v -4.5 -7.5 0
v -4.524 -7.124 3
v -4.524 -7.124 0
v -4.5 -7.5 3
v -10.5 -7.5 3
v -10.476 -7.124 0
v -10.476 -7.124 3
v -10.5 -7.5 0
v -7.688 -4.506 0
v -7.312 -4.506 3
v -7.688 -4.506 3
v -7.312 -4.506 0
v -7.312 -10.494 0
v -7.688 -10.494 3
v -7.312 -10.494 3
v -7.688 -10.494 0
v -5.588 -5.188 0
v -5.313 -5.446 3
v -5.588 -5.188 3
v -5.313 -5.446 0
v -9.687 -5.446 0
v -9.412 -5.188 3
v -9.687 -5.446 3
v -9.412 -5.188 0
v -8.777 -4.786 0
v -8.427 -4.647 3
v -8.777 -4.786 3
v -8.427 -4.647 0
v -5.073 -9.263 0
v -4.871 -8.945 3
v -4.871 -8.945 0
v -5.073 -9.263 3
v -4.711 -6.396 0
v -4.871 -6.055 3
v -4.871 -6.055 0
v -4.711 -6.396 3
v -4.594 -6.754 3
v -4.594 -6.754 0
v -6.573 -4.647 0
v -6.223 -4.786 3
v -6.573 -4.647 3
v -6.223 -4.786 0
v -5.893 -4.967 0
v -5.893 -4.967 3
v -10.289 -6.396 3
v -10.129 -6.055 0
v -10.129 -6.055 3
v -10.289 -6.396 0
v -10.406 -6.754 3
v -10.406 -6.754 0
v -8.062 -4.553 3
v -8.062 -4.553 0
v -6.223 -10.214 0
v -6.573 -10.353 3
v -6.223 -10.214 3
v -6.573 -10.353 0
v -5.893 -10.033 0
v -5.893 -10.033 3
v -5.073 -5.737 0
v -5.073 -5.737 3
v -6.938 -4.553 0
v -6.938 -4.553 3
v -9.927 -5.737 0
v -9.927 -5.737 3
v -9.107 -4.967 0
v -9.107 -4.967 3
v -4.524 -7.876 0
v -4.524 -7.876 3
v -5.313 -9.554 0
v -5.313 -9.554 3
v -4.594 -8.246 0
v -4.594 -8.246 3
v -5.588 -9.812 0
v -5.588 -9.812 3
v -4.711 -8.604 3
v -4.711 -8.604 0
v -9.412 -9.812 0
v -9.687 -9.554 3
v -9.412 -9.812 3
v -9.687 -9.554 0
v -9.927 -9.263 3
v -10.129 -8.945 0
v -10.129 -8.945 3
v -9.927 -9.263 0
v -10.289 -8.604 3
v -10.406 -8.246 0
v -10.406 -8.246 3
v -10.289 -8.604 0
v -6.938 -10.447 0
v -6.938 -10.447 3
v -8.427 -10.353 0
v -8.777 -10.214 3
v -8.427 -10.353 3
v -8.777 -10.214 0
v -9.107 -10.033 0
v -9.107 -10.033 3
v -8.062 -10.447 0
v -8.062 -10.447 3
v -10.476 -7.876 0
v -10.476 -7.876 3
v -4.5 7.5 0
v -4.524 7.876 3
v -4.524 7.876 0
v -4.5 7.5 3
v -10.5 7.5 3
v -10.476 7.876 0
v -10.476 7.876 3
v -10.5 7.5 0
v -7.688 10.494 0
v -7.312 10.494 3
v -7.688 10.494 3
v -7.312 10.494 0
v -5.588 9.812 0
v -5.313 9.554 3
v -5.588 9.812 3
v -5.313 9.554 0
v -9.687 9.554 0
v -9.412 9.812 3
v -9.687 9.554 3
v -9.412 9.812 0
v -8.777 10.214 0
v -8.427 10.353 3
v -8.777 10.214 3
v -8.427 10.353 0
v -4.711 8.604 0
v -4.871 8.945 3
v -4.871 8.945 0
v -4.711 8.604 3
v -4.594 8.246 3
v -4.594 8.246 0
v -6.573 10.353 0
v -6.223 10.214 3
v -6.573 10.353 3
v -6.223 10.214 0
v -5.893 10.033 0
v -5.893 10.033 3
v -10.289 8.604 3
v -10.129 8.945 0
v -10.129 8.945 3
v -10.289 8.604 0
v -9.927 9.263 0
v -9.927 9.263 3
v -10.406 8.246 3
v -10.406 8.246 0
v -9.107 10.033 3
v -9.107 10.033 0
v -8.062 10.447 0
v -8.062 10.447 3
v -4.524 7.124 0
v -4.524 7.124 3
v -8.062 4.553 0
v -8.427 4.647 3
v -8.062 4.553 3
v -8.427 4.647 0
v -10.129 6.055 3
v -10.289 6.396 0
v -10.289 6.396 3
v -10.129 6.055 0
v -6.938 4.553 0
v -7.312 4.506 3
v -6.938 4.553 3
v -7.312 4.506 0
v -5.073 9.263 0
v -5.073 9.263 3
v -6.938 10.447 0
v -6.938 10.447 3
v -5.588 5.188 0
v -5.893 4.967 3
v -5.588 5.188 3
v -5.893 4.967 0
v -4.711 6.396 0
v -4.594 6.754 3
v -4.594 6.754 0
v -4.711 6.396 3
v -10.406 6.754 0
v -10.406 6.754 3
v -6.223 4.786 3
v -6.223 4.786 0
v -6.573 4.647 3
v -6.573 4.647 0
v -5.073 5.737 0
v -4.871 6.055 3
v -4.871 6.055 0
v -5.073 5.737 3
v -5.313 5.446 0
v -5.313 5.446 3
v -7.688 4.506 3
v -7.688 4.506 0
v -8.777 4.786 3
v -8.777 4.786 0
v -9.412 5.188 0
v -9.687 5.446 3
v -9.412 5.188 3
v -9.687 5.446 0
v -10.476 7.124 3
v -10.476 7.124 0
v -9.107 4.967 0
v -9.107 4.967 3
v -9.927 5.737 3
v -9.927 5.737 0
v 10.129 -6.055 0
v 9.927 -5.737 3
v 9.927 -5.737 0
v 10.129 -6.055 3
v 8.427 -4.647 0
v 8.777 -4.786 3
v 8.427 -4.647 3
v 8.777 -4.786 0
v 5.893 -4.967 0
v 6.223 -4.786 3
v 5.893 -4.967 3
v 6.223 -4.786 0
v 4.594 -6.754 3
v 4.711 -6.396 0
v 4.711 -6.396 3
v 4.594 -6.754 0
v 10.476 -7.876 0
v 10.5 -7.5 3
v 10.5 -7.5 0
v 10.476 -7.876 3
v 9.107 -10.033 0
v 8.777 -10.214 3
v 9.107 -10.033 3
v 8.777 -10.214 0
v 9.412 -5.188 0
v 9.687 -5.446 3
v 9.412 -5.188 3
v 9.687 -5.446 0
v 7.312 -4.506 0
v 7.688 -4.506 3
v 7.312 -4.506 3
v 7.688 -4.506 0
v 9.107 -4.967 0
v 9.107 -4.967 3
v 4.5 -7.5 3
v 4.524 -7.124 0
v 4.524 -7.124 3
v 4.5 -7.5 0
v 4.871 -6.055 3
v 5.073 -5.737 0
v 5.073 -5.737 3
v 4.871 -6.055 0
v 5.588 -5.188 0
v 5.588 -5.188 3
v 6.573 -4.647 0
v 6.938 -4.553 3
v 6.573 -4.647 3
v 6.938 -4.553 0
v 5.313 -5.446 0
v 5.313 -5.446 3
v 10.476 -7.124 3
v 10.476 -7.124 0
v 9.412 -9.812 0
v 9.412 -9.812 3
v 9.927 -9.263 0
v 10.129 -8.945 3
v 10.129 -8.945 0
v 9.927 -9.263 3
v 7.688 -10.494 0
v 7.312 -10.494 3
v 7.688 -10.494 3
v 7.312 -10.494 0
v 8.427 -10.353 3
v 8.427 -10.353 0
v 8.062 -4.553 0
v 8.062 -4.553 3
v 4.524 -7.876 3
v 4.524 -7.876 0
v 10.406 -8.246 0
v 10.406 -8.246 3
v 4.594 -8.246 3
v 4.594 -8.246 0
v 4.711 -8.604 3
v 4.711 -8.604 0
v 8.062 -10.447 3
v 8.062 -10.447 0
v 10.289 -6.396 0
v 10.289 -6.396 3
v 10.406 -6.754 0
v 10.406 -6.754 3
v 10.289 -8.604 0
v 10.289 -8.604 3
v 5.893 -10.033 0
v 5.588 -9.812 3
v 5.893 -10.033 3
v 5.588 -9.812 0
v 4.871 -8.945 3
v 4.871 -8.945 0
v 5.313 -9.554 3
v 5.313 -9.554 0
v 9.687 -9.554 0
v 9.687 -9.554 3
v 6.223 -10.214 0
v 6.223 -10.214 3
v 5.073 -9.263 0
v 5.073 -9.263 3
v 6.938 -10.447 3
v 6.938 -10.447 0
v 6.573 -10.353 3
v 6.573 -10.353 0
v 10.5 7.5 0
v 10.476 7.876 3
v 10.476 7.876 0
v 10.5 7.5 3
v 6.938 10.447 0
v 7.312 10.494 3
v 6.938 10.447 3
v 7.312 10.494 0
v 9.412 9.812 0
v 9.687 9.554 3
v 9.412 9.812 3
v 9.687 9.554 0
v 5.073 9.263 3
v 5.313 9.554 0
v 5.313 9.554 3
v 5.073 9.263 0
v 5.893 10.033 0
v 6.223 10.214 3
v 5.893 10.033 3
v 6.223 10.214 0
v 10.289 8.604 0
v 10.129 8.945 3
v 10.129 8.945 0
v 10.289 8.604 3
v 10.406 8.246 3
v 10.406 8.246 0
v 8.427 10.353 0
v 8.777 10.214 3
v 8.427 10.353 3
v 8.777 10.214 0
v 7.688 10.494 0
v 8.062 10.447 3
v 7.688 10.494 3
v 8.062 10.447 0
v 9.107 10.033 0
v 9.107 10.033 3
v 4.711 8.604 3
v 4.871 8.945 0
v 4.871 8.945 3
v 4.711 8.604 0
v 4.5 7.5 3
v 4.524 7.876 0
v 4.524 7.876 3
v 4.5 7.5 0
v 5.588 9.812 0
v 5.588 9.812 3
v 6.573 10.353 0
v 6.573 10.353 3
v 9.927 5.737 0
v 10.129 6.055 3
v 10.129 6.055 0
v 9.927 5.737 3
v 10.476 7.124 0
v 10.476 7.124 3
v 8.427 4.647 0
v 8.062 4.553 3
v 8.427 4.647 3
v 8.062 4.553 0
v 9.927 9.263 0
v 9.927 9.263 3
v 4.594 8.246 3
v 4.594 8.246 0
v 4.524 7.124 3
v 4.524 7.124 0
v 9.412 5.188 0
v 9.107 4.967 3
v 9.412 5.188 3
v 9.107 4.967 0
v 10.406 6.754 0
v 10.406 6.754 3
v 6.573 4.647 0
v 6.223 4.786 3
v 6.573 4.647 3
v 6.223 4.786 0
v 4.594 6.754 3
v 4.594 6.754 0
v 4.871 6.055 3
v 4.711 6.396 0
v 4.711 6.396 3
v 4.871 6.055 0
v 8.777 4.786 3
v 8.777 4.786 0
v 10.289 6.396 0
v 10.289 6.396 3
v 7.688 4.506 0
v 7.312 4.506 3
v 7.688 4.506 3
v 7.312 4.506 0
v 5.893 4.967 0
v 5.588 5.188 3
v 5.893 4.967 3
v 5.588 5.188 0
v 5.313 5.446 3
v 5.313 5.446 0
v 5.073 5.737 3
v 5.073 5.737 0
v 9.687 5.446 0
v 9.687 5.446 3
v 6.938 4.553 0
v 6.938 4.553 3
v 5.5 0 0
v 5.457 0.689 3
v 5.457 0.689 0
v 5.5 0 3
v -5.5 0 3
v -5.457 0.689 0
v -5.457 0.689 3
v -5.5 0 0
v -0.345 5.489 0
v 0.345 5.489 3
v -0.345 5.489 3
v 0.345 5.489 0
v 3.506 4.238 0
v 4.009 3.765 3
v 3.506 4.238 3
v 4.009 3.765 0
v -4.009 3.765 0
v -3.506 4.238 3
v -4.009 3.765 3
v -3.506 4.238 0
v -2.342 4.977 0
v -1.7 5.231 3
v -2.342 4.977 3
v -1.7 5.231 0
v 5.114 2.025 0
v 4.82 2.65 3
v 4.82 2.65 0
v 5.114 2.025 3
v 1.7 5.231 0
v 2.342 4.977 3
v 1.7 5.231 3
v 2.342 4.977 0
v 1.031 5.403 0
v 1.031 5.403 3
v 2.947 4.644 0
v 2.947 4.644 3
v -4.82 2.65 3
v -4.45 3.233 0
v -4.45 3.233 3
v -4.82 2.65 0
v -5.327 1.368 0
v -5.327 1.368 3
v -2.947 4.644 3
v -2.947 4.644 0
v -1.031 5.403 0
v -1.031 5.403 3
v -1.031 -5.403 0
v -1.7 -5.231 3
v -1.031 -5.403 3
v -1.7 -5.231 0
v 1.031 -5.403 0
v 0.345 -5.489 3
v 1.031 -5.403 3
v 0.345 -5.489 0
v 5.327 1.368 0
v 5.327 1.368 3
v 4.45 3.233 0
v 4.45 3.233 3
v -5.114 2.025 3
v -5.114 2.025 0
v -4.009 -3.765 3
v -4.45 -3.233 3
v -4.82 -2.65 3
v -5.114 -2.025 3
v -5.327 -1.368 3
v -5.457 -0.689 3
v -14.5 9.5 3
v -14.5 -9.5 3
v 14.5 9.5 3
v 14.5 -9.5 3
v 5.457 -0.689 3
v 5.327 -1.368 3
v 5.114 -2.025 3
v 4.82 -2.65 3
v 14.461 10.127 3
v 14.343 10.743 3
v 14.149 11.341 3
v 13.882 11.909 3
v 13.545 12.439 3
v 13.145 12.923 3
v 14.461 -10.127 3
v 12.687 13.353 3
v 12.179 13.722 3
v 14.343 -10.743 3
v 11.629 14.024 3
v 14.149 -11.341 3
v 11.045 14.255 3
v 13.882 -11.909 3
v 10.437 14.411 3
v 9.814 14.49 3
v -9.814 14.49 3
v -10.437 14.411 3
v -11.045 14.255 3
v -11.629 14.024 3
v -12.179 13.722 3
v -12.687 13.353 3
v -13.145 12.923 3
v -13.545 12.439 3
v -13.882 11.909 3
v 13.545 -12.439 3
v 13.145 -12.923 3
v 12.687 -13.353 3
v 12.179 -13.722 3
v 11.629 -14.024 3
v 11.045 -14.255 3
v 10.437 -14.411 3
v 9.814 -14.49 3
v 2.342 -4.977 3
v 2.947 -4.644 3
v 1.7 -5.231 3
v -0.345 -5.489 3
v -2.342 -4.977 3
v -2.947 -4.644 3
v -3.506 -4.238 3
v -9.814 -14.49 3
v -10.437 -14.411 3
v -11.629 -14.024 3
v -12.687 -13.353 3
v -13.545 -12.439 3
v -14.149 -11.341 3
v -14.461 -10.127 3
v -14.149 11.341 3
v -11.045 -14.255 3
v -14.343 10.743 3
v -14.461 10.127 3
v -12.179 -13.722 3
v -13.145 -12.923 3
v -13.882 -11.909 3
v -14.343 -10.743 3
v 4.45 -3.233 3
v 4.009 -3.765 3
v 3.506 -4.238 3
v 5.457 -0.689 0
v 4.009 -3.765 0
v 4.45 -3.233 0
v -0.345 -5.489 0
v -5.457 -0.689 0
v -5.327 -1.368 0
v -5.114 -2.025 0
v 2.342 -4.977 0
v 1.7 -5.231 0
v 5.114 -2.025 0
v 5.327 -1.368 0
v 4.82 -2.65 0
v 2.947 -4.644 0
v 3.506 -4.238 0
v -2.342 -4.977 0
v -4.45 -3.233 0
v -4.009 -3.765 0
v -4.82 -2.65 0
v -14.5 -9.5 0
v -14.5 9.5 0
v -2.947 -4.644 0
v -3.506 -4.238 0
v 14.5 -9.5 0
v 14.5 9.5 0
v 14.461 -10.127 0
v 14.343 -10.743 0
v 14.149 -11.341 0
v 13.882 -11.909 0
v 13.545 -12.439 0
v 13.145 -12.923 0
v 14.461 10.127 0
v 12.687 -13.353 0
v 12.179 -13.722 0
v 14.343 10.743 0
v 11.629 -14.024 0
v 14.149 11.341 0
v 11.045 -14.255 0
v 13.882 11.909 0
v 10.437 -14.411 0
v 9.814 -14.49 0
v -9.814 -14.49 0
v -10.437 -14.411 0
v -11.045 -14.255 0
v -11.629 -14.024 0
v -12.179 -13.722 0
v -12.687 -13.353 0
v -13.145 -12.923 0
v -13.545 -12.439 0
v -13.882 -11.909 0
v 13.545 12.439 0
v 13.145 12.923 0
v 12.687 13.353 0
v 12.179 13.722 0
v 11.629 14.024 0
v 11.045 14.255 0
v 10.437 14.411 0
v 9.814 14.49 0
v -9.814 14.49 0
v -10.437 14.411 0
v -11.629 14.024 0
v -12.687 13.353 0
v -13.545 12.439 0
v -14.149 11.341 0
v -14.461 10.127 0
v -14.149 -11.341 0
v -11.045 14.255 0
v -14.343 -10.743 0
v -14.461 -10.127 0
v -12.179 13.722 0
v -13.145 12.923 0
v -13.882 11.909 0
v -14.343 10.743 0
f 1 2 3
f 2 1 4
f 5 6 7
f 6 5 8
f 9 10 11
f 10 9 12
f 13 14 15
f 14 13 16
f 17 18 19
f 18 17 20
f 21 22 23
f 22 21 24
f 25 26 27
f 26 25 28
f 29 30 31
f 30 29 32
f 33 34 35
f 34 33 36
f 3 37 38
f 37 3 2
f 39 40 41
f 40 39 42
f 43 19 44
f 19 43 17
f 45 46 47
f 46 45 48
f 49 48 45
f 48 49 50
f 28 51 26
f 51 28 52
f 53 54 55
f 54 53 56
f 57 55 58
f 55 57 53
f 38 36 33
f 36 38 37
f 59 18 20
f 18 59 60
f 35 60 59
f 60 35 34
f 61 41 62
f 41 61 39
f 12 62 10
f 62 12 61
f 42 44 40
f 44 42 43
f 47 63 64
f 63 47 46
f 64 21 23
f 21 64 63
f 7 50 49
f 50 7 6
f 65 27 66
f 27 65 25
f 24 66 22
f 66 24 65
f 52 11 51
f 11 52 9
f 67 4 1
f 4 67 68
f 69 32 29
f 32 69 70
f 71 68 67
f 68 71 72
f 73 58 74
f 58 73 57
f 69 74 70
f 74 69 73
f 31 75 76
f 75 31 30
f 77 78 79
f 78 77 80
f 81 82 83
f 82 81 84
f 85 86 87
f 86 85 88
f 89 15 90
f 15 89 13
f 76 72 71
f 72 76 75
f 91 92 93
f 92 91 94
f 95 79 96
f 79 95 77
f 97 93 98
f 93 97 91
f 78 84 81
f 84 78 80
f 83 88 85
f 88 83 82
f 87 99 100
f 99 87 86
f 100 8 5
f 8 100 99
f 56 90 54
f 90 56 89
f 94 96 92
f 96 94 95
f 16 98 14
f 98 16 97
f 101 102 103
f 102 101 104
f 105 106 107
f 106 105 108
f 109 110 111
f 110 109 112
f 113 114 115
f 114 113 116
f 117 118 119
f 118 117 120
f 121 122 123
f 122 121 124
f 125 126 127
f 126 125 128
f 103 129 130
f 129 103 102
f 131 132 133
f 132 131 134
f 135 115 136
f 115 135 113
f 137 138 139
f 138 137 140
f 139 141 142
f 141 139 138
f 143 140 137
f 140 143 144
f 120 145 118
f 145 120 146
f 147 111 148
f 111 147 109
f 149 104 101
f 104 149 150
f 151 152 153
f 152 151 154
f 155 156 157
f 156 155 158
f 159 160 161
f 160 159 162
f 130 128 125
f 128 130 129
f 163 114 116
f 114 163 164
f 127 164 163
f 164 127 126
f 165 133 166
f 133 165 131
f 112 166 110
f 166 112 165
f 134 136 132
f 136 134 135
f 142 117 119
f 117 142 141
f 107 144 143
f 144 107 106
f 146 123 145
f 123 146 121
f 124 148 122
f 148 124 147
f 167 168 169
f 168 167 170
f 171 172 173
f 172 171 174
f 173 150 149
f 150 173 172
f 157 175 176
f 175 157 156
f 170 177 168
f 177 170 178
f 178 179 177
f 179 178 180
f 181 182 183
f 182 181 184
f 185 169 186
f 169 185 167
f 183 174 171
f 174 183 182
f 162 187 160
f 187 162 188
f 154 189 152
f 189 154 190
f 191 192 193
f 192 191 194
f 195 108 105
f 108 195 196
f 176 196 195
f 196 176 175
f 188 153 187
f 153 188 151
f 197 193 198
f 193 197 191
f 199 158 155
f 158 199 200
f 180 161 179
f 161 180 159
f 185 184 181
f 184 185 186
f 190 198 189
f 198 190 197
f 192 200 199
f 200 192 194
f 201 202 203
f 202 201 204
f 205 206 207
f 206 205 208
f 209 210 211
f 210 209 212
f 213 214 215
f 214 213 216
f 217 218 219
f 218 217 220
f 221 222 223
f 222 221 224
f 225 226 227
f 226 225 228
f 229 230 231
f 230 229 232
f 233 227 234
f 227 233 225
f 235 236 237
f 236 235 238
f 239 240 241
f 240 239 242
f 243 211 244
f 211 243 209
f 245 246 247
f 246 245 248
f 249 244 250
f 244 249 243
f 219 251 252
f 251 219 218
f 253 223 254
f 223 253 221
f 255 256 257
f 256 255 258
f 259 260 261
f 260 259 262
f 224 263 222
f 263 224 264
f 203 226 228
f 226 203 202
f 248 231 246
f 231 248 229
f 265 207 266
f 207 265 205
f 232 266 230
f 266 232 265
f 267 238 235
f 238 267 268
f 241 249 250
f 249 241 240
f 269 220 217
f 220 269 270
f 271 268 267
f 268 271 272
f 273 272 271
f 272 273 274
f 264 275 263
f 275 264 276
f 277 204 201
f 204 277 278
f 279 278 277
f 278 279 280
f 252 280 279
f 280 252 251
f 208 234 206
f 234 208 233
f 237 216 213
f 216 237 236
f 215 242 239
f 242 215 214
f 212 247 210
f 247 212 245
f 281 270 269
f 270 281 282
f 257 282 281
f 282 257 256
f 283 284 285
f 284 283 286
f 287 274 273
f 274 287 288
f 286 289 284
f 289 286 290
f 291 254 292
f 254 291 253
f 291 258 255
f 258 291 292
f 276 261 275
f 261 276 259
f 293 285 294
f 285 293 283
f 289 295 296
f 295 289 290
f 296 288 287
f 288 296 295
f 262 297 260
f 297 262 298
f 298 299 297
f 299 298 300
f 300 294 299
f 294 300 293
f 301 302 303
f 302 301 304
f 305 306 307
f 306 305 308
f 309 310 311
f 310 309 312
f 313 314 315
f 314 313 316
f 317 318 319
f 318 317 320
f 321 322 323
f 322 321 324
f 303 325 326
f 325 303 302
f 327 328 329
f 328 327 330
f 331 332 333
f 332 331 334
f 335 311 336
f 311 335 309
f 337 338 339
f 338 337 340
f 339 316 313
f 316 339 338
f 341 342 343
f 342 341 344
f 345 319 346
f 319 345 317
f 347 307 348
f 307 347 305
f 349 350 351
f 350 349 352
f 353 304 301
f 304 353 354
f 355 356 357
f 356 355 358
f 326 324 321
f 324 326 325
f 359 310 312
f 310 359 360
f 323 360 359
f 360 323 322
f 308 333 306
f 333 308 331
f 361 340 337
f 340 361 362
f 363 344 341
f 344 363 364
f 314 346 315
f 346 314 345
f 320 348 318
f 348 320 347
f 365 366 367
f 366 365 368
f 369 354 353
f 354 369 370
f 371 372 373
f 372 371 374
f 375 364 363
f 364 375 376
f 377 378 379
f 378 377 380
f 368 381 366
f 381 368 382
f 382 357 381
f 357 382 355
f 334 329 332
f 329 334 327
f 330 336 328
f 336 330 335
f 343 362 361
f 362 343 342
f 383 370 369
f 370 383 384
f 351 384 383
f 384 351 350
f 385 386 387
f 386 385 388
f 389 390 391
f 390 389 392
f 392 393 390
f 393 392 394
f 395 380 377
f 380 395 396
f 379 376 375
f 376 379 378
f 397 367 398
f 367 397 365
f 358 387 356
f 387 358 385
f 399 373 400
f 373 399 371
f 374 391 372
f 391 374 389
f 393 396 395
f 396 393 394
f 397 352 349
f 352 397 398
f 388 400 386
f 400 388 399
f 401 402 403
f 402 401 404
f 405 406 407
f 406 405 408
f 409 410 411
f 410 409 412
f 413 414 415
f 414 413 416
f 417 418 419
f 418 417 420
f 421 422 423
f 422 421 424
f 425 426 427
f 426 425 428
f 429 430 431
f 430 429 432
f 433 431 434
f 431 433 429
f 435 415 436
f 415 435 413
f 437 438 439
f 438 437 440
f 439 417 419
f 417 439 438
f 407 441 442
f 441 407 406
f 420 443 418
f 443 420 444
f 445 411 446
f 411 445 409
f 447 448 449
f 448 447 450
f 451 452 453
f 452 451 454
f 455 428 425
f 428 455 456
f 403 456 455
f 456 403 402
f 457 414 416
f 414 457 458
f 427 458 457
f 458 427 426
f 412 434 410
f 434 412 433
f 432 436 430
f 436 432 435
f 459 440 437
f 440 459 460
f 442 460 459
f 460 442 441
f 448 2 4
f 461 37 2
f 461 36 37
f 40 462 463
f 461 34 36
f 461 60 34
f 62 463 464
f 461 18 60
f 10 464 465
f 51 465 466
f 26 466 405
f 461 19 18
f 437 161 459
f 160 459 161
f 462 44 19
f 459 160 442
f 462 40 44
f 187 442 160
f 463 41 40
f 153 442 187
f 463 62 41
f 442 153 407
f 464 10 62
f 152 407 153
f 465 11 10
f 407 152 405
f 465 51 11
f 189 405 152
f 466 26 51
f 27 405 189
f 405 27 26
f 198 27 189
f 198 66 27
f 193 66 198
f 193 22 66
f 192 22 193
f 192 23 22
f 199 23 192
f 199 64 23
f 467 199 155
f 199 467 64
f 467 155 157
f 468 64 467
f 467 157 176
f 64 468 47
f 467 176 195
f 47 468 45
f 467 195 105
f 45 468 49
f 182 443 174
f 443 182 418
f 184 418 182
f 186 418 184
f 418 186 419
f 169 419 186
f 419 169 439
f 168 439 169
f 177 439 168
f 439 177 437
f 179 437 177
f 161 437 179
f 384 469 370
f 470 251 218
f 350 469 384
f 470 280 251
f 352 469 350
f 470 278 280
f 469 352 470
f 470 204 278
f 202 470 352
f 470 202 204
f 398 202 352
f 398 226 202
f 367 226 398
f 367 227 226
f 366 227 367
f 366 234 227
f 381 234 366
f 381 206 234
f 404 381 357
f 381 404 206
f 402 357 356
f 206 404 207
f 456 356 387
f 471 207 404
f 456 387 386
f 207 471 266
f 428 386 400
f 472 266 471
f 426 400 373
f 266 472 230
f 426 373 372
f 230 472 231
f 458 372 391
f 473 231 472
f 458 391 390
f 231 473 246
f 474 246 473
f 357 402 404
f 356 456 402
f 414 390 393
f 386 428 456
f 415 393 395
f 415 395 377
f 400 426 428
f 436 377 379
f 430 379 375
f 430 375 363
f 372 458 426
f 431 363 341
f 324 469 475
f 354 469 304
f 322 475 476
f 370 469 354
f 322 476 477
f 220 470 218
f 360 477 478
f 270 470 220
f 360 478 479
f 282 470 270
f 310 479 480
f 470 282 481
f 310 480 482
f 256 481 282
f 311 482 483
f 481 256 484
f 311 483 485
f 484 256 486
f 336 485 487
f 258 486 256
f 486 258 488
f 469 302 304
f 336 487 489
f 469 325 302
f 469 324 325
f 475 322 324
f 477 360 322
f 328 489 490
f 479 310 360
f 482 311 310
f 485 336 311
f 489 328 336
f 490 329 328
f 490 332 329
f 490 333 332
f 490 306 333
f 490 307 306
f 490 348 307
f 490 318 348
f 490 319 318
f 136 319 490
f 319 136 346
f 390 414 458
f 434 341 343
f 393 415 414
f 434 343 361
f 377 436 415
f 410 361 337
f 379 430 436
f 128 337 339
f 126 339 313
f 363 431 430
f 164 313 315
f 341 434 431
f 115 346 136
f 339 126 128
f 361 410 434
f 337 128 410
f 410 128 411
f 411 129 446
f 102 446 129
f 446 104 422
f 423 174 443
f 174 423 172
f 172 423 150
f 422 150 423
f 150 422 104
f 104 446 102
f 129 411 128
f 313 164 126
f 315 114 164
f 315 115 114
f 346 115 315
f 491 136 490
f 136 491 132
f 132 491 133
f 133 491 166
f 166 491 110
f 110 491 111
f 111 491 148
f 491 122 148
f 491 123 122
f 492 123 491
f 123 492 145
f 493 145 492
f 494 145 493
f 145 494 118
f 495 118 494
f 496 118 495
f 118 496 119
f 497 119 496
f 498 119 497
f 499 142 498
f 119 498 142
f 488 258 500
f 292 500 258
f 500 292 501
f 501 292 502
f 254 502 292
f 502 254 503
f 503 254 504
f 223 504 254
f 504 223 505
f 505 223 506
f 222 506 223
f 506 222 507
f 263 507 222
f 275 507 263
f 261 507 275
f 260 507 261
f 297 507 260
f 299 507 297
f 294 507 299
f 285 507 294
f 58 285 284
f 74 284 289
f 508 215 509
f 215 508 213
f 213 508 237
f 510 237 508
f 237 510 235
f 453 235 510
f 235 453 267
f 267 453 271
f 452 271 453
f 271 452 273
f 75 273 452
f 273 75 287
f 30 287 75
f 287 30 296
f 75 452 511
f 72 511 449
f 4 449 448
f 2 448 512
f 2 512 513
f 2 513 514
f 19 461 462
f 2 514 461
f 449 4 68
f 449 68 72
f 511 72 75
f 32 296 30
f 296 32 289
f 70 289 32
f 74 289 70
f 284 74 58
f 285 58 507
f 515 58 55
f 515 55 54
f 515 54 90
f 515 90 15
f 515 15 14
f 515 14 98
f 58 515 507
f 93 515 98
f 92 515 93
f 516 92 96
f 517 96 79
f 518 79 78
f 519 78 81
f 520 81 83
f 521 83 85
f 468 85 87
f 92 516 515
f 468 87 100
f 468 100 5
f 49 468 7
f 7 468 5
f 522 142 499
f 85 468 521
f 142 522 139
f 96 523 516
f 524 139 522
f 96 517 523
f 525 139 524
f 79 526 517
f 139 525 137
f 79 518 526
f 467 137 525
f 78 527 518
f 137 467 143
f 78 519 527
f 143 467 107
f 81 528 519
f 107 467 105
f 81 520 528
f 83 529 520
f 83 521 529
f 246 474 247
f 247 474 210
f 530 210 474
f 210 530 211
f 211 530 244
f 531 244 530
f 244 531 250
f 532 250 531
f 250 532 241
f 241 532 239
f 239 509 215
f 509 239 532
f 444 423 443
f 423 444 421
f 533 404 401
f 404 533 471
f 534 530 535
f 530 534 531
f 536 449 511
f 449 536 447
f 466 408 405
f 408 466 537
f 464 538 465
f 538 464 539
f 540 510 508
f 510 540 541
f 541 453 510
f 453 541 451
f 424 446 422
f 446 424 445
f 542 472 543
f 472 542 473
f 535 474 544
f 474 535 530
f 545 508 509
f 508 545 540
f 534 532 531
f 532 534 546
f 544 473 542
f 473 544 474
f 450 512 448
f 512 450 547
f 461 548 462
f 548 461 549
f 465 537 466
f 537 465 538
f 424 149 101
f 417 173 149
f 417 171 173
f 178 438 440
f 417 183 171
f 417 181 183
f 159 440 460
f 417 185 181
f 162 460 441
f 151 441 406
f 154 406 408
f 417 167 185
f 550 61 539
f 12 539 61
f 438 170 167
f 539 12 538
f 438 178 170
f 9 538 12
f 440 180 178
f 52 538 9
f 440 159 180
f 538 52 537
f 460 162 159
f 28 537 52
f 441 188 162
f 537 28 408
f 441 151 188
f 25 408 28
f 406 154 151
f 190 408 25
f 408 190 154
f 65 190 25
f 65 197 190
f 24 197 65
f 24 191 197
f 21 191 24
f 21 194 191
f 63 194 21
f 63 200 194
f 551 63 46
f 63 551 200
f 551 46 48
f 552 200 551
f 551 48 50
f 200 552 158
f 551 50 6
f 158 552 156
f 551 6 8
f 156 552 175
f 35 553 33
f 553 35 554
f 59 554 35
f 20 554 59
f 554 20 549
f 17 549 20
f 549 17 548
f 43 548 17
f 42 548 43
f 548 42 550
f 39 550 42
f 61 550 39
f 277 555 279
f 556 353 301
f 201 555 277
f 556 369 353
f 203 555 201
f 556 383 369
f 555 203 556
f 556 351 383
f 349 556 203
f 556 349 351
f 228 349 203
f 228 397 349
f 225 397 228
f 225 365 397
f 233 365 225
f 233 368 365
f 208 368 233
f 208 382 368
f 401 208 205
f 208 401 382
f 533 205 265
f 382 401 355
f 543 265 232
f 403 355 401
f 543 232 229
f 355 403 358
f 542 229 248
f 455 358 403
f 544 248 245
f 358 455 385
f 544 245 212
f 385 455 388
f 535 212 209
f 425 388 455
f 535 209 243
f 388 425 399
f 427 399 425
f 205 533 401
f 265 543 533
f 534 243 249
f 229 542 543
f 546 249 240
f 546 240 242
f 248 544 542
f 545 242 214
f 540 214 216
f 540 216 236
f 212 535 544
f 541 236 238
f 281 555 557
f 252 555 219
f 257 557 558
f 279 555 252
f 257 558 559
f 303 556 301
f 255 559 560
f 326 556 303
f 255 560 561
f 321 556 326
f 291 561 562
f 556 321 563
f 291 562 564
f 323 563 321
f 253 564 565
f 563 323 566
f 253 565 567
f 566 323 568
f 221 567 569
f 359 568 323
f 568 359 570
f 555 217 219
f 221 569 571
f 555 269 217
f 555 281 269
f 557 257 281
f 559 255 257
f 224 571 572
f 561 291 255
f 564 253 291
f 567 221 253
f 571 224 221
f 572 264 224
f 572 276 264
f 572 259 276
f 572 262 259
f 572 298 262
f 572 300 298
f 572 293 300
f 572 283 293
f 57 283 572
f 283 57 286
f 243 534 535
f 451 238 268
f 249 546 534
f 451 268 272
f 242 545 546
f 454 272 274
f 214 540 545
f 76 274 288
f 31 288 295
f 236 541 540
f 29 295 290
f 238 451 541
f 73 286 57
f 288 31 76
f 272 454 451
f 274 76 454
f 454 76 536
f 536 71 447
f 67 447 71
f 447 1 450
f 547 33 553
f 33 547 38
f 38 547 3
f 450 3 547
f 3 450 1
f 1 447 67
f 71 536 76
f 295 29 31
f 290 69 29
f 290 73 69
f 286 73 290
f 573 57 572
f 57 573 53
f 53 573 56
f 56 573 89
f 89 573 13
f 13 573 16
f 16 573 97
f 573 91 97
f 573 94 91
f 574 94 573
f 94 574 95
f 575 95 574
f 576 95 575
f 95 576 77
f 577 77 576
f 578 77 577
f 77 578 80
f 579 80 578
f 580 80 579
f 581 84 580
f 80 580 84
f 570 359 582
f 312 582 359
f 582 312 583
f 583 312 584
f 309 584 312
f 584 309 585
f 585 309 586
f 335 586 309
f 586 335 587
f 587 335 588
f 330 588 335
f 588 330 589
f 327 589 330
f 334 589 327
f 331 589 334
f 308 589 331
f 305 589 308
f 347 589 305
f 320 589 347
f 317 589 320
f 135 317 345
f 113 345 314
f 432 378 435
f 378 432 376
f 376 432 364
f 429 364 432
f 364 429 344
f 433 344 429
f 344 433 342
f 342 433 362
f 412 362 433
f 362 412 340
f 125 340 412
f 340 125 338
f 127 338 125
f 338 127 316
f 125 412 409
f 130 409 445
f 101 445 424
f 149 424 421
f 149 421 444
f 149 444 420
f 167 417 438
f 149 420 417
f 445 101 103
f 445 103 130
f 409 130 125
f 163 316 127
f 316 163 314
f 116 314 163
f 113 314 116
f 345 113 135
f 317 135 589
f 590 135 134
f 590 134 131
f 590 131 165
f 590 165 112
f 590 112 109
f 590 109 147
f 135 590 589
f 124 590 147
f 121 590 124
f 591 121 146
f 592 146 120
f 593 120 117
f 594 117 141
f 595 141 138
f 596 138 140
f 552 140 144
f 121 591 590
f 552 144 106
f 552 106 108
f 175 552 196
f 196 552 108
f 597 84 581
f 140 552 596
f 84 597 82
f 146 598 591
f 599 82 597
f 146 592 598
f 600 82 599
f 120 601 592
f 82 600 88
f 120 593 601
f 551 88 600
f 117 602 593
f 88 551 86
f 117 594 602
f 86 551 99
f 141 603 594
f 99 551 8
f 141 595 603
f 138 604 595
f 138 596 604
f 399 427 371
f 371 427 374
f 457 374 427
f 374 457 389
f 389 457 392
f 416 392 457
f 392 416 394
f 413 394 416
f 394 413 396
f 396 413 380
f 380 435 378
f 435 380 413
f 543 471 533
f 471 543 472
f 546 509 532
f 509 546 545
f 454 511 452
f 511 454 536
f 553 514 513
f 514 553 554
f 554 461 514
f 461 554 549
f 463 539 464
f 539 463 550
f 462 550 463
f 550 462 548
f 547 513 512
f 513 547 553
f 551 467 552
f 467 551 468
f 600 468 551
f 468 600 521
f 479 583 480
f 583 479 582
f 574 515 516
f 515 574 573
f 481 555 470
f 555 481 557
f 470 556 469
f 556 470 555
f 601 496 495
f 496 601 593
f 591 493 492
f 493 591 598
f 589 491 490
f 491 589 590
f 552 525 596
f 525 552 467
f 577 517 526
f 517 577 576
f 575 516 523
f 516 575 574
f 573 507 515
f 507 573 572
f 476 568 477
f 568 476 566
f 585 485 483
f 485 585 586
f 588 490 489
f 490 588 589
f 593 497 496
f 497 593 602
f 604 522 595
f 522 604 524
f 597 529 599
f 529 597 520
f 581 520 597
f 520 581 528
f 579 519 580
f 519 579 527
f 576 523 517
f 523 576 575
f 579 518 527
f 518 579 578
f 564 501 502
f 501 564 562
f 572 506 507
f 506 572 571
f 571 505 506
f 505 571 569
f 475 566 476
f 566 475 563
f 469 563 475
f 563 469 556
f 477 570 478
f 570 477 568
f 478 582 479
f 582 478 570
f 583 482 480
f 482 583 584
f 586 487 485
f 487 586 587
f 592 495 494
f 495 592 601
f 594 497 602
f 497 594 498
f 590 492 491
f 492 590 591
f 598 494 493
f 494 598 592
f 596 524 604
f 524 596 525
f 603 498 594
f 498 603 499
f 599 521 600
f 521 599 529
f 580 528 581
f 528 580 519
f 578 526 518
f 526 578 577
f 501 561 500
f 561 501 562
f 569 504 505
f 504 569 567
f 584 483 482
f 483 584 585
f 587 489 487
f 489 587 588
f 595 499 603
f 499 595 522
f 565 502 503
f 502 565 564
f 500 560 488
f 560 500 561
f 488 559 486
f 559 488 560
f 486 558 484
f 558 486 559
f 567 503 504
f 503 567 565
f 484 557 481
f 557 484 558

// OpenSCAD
$fn = 50;


difference() {
	union() {
		hull() {
			translate(v = [-9.5000000000, 9.5000000000, 0]) {
				cylinder(h = 3, r = 5);
			}
			translate(v = [9.5000000000, 9.5000000000, 0]) {
				cylinder(h = 3, r = 5);
			}
			translate(v = [-9.5000000000, -9.5000000000, 0]) {
				cylinder(h = 3, r = 5);
			}
			translate(v = [9.5000000000, -9.5000000000, 0]) {
				cylinder(h = 3, r = 5);
			}
		}
	}
	union() {
		#translate(v = [-7.5000000000, -7.5000000000, -100.0000000000]) {
			cylinder(h = 200, r = 3.0000000000);
		}
		#translate(v = [-7.5000000000, 7.5000000000, -100.0000000000]) {
			cylinder(h = 200, r = 3.0000000000);
		}
		#translate(v = [7.5000000000, -7.5000000000, -100.0000000000]) {
			cylinder(h = 200, r = 3.0000000000);
		}
		#translate(v = [7.5000000000, 7.5000000000, -100.0000000000]) {
			cylinder(h = 200, r = 3.0000000000);
		}
		#cylinder(h = 3, r = 5.5000000000);
	}
}
